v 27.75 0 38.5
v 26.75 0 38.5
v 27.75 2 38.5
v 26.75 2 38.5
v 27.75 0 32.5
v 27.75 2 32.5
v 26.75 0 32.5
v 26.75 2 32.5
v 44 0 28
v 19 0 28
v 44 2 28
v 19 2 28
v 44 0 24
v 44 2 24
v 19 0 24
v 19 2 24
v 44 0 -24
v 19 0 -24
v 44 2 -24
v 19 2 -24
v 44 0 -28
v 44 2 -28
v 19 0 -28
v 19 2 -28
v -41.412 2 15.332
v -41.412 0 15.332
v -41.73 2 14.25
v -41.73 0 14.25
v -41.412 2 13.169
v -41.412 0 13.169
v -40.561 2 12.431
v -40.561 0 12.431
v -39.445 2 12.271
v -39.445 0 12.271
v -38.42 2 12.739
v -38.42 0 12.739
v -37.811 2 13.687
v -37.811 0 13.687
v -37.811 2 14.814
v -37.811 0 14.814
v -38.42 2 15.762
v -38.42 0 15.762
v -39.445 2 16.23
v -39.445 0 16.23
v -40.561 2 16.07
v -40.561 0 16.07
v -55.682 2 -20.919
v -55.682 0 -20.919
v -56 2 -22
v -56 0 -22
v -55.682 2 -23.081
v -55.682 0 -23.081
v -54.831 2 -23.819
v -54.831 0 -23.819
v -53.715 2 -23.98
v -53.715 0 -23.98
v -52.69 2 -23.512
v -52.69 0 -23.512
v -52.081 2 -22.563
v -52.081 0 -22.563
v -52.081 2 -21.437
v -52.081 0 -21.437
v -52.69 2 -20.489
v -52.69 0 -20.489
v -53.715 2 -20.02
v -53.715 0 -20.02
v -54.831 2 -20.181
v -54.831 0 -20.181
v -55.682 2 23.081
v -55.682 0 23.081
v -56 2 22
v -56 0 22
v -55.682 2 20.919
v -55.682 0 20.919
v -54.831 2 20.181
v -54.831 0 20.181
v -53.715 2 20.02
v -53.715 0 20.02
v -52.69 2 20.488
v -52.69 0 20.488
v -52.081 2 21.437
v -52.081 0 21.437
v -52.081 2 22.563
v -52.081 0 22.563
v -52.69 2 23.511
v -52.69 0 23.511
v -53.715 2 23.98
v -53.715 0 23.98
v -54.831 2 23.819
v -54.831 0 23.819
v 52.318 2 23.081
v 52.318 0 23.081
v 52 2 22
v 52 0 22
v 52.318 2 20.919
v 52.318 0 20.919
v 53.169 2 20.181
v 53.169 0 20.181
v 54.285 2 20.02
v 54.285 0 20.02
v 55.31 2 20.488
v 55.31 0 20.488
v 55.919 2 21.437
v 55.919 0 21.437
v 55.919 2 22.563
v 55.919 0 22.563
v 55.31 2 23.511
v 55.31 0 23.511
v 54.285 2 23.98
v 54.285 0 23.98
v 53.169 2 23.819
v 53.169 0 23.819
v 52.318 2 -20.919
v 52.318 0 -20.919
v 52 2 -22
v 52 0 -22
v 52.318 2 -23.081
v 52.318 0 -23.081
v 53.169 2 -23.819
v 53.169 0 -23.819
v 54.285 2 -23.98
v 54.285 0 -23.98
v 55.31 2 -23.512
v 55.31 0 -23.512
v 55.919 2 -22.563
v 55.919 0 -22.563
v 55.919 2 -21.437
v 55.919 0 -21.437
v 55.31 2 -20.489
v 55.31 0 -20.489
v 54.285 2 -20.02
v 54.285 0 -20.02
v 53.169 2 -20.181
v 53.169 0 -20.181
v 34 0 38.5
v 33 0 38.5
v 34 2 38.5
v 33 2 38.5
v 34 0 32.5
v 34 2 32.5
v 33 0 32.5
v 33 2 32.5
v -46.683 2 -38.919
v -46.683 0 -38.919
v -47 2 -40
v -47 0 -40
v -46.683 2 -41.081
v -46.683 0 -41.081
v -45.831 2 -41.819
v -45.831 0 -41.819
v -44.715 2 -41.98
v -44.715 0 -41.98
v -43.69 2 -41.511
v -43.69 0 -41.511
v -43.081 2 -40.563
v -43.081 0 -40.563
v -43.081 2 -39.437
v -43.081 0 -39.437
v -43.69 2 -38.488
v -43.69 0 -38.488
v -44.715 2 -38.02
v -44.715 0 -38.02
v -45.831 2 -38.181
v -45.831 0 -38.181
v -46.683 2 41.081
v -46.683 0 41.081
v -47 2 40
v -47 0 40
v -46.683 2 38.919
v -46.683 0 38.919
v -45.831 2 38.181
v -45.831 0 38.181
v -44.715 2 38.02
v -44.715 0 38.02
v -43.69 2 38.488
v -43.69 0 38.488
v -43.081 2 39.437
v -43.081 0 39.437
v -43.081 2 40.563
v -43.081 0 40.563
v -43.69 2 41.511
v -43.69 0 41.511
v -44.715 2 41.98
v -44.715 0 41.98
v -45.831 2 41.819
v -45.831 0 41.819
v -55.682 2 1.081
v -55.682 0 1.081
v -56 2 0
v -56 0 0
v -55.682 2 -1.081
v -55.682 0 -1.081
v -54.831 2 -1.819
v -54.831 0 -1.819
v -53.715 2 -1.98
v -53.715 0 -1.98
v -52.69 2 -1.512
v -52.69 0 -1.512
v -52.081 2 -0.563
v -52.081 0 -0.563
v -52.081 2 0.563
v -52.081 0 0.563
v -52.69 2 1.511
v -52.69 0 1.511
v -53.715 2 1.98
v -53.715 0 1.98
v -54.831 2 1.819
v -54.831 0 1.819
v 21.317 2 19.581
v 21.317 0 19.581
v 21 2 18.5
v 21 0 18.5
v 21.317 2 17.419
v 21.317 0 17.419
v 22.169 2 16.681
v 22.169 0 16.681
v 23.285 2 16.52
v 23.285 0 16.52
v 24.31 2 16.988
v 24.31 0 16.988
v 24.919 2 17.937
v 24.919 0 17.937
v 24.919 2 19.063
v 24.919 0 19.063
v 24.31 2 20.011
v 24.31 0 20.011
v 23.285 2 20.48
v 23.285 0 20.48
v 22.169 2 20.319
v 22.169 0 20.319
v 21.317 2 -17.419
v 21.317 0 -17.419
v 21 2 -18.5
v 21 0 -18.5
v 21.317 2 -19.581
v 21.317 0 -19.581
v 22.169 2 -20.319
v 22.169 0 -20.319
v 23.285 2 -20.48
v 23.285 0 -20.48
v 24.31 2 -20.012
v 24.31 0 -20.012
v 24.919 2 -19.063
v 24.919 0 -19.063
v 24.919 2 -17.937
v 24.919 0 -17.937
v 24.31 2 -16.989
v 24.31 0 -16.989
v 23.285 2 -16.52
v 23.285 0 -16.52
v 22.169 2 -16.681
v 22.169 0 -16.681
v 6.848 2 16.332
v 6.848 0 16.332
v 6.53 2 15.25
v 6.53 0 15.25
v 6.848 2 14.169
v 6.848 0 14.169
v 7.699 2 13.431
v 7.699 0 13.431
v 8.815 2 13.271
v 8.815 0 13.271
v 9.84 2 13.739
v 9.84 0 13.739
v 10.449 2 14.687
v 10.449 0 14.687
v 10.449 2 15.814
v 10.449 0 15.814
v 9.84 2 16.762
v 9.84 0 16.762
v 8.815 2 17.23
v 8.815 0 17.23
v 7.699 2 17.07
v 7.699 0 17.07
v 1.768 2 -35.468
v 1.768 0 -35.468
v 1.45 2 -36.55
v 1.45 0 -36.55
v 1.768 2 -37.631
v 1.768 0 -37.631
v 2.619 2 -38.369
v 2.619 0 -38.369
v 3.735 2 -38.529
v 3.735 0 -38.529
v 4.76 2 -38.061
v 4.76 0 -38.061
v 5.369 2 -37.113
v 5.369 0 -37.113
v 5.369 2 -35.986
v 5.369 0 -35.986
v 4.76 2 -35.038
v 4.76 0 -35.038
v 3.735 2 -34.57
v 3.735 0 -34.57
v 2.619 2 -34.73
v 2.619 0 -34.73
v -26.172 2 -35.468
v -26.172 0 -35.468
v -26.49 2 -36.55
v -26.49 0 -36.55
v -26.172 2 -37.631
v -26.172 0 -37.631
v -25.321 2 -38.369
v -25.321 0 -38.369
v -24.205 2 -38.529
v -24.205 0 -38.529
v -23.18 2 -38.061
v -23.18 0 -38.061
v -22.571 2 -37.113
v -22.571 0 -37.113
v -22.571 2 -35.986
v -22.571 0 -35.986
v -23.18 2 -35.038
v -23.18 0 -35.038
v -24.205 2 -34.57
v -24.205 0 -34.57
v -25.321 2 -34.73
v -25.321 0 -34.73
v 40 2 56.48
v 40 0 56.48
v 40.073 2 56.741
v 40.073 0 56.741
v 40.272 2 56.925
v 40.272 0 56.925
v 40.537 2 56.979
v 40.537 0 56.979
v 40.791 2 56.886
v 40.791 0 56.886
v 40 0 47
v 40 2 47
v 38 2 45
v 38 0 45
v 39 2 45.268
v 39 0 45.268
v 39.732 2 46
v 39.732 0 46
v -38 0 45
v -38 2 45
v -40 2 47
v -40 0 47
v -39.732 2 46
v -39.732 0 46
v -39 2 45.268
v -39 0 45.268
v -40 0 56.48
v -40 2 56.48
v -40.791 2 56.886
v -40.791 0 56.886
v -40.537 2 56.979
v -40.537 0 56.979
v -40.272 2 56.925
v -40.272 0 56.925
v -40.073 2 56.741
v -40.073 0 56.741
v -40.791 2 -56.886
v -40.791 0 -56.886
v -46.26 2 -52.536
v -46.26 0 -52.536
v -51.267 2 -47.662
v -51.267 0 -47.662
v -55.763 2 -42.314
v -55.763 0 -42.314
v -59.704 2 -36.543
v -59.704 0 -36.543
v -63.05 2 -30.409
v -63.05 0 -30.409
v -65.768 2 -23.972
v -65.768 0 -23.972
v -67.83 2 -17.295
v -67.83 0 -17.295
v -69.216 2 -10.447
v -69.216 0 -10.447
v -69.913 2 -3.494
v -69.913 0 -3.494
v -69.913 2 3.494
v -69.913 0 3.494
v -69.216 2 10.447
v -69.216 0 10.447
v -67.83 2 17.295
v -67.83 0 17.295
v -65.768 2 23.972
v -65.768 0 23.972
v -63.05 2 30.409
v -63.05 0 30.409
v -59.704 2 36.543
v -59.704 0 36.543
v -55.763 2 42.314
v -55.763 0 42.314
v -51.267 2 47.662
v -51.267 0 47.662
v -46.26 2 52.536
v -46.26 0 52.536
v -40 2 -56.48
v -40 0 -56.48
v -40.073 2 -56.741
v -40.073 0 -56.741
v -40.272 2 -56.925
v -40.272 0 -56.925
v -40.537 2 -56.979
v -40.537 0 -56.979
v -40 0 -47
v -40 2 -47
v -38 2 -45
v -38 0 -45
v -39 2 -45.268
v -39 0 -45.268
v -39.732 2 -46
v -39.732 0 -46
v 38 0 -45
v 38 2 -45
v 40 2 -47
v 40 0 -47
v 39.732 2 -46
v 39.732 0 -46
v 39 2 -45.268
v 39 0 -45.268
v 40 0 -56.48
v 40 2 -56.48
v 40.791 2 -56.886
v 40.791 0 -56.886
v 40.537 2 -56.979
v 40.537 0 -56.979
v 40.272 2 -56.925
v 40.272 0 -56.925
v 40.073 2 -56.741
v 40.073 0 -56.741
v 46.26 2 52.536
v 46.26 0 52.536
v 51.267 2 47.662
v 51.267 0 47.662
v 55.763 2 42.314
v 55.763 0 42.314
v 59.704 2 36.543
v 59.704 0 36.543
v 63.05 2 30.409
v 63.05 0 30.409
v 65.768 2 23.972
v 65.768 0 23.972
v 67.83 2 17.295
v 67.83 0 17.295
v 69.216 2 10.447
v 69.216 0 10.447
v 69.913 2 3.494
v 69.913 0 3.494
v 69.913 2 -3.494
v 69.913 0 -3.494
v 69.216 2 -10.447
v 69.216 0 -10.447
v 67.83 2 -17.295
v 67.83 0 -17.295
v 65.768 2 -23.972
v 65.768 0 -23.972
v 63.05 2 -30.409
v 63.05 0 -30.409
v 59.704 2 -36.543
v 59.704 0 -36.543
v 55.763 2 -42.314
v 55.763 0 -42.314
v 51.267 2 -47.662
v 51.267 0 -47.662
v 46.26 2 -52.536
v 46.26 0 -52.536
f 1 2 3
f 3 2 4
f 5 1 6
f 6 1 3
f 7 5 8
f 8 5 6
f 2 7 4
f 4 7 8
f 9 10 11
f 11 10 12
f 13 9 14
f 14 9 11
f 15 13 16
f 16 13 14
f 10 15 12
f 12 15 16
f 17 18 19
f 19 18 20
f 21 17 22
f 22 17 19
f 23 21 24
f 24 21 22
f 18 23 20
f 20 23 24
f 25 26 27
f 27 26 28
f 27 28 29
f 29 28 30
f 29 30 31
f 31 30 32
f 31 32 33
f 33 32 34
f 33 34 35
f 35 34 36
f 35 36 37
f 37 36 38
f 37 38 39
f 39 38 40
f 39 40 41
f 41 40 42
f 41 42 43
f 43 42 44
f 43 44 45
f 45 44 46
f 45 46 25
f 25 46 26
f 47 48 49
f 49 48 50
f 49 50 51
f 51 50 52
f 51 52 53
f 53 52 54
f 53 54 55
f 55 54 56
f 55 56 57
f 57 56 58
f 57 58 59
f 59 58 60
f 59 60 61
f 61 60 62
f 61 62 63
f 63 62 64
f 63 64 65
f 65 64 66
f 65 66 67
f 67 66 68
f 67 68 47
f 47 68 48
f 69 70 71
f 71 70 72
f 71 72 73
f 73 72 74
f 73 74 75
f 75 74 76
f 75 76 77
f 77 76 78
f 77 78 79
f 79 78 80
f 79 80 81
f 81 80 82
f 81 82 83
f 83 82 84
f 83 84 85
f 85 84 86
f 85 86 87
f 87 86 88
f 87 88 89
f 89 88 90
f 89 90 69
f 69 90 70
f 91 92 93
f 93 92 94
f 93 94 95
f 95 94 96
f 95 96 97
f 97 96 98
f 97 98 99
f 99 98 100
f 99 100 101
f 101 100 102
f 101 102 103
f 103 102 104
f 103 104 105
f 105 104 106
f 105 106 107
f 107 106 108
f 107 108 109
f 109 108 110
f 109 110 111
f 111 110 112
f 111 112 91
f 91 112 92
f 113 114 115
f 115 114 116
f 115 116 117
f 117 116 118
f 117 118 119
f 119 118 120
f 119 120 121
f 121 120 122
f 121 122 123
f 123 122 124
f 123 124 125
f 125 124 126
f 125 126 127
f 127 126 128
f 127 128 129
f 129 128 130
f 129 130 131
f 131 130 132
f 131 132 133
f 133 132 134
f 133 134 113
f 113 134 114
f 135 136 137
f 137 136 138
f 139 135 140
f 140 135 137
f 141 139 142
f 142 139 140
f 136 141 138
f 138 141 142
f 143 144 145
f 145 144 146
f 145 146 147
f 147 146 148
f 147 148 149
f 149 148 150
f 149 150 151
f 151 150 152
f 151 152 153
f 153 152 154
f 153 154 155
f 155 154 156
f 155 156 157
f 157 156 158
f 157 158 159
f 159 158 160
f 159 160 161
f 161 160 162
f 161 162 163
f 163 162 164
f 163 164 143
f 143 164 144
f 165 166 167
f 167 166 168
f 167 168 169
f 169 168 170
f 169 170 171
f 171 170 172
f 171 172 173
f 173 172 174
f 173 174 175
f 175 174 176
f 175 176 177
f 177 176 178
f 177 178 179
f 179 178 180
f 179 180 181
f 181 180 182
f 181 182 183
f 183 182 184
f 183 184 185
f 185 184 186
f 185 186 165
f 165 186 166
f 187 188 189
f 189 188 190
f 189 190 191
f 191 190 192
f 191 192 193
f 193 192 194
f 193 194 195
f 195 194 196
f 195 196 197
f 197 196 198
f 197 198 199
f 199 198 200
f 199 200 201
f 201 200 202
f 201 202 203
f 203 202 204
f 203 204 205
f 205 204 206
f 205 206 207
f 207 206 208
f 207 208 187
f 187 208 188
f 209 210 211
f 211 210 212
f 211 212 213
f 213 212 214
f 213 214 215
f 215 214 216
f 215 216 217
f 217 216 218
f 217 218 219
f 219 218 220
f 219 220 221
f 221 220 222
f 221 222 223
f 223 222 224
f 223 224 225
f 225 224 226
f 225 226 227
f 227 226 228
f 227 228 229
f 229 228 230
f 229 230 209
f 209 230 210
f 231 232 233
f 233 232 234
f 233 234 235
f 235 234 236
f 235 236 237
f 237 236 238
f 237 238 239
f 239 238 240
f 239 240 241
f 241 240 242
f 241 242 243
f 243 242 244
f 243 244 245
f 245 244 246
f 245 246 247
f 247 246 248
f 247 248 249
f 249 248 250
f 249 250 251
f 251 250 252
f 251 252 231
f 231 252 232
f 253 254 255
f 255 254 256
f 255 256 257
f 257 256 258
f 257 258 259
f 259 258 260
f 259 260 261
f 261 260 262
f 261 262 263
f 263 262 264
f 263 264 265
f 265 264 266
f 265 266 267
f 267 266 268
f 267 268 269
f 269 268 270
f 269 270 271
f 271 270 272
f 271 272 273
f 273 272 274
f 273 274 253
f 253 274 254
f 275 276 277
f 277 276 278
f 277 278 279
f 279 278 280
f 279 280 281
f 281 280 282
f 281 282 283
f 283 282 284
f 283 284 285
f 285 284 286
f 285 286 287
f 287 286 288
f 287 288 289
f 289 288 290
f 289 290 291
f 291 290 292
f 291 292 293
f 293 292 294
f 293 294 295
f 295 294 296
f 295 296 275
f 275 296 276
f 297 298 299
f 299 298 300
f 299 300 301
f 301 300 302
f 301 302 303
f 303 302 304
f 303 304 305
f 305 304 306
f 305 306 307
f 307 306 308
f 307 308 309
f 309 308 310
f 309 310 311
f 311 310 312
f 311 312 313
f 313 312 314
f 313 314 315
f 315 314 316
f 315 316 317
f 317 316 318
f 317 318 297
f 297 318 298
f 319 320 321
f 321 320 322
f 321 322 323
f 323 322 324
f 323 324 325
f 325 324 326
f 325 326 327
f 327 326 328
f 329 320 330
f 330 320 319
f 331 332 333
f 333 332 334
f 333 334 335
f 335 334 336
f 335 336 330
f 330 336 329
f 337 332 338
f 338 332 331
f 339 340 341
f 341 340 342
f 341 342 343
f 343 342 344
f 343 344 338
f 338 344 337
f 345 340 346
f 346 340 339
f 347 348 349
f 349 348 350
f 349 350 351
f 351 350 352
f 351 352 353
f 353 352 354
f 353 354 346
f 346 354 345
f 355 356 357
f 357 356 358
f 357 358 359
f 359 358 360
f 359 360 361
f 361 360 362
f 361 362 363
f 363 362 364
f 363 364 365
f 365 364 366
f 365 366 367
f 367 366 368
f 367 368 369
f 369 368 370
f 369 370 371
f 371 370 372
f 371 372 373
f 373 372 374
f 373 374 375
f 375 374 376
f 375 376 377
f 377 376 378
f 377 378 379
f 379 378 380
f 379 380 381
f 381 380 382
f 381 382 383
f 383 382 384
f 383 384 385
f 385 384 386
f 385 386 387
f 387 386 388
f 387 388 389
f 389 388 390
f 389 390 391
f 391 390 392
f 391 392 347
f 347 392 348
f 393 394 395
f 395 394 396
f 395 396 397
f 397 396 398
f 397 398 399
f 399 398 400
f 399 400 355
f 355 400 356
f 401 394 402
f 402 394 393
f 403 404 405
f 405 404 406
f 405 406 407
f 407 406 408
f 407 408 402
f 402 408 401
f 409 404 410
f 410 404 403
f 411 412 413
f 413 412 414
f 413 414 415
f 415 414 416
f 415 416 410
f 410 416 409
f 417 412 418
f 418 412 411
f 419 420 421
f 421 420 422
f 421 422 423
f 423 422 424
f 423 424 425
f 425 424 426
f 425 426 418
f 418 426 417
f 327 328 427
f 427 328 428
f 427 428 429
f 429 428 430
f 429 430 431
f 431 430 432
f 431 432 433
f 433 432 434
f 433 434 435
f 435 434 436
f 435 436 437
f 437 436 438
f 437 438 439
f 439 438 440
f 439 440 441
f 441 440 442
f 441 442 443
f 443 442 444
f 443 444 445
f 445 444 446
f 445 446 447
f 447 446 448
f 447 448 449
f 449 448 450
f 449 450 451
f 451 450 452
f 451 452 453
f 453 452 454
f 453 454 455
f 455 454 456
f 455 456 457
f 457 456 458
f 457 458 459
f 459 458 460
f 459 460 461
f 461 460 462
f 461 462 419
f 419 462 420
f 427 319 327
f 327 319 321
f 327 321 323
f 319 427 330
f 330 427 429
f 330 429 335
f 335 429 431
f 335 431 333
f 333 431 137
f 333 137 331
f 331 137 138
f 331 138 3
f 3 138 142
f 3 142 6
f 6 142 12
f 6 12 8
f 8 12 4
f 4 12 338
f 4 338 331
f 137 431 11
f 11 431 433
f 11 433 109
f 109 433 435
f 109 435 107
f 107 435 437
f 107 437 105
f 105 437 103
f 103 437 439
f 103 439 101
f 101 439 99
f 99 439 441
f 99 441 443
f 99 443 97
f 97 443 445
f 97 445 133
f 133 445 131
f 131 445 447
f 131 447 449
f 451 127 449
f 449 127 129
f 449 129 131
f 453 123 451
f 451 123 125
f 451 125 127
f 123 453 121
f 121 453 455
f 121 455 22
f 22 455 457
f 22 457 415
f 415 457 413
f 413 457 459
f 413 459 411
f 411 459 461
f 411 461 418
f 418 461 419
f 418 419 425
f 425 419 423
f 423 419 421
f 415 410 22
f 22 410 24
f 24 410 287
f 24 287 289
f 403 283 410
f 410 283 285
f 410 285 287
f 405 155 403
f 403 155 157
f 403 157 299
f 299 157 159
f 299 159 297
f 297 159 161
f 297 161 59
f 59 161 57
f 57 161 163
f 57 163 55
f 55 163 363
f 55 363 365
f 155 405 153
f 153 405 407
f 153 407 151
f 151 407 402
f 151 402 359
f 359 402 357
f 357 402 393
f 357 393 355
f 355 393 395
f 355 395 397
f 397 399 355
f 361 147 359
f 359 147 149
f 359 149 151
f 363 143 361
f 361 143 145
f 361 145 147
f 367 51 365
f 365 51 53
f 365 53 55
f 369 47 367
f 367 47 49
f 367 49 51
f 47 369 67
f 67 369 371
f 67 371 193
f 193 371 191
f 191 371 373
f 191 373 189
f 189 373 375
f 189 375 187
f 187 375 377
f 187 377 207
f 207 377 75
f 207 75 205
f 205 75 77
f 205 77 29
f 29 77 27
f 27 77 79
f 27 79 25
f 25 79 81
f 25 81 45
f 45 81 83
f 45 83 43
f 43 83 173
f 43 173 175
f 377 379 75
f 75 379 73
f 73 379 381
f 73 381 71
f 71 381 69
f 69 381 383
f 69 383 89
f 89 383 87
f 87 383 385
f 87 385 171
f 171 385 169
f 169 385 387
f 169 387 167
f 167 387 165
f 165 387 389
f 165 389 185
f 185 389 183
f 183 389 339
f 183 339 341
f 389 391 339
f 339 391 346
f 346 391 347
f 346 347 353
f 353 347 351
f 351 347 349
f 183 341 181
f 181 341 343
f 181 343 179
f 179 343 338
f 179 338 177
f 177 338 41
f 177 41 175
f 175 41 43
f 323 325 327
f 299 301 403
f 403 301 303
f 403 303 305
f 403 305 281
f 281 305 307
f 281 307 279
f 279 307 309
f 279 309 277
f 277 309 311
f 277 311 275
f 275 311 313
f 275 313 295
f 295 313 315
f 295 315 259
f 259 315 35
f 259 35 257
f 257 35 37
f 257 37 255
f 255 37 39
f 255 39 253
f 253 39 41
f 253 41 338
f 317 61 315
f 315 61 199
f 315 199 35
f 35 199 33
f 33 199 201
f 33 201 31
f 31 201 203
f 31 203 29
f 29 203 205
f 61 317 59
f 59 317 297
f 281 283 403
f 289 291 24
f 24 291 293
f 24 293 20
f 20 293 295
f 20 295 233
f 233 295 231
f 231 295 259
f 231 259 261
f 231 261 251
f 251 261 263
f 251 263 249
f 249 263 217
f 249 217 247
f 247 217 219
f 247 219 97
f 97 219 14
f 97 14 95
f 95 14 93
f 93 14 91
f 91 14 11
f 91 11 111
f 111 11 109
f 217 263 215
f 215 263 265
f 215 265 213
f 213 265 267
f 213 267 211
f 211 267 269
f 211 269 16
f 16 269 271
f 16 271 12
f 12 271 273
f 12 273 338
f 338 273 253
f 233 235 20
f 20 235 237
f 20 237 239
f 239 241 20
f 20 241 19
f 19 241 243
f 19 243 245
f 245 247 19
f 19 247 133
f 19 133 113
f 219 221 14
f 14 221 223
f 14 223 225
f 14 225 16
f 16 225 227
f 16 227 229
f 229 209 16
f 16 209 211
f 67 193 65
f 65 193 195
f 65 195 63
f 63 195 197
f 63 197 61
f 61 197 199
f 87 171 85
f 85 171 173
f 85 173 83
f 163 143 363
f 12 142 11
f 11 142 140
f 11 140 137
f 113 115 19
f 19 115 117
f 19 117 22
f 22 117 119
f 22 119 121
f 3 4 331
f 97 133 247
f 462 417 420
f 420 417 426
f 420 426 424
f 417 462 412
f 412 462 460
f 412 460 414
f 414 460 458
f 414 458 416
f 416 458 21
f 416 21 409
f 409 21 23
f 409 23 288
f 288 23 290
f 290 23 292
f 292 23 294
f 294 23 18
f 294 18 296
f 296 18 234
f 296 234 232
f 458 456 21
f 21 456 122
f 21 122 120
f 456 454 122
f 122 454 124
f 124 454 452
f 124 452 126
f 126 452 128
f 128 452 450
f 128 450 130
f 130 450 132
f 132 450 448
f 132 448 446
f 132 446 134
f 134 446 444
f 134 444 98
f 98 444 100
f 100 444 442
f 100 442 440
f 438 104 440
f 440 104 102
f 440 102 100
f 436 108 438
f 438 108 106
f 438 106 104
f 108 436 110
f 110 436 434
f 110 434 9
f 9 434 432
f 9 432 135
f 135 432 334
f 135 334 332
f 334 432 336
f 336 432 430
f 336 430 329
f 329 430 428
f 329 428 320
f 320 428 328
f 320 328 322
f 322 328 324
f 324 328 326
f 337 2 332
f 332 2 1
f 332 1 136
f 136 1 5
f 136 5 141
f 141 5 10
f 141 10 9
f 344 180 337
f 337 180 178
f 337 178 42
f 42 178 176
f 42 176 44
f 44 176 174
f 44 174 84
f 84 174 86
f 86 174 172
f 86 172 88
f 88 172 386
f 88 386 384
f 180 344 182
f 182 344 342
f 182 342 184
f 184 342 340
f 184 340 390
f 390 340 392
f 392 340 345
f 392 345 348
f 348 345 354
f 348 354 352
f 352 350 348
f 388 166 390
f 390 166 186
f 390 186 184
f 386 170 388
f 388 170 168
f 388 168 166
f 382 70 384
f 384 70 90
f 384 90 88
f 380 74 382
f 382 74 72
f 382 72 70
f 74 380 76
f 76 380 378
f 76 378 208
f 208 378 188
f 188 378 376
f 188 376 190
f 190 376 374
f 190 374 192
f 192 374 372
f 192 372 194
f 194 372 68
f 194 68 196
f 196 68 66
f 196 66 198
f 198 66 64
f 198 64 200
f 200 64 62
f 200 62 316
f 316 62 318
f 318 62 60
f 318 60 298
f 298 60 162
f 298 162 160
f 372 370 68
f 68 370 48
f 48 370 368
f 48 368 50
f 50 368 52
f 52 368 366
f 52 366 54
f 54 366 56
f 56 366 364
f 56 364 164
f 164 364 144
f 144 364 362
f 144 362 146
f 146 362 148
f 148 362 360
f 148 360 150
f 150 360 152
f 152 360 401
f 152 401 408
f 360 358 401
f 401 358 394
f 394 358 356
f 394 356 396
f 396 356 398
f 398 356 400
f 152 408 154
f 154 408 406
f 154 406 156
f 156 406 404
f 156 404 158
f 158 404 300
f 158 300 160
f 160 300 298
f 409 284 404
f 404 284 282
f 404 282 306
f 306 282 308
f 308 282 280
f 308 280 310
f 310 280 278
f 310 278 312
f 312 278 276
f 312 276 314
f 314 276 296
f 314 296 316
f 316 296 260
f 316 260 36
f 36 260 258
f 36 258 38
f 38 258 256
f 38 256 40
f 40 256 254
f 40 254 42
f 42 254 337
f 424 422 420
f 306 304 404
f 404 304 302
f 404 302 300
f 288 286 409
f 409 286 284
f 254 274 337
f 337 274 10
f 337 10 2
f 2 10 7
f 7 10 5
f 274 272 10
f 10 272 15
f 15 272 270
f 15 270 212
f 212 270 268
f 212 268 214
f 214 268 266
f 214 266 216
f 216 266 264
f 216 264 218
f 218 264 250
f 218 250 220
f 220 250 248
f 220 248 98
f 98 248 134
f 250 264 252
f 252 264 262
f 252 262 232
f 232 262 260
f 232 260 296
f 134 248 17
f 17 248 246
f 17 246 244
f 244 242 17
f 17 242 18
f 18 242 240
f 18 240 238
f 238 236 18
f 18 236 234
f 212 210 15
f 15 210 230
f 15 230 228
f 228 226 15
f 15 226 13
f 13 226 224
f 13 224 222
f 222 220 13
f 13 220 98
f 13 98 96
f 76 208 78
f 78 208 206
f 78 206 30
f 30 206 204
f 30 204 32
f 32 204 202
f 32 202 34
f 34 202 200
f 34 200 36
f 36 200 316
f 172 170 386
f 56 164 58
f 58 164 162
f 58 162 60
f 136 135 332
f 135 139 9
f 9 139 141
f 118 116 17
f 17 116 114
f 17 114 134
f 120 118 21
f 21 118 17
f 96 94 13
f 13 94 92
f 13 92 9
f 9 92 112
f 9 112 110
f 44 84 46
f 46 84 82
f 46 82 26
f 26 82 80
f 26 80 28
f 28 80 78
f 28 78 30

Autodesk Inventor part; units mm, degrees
ref_plane "YZ Plane" through (0, 0, 0) normal (1, 0, 0) x (0, 1, 0)
ref_plane "XZ Plane" through (0, 0, 0) normal (0, 1, 0) x (-1, 0, 0)
ref_plane "XY Plane" through (0, 0, 0) normal (0, 0, 1) x (1, 0, 0)
sketch "Esboço1" plane through (0, 0, 0) normal (0, 1, 0) x (-1, 0, 0)
  arc A0 (-40.7914, 56.8864) -> (-40.7914, -56.8864) centre (0, 0) ccw
  arc A1 (40.7914, -56.8864) -> (40.7914, 56.8864) centre (0, 0) ccw
  line L0 (-11.73, 29.4903) -> (42.27, 29.4903) construction
  line L1 (42.27, 29.4903) -> (42.27, -38.5097) construction
  line L2 (42.27, -38.5097) -> (-11.73, -38.5097) construction
  line L3 (-11.73, -38.5097) -> (-11.73, 29.4903) construction
  line L4 (-19, 28) -> (-44, 28)
  line L5 (-44, 28) -> (-44, 24)
  line L6 (-44, 24) -> (-19, 24)
  line L7 (-19, 24) -> (-19, 28)
  line L8 (-19, -24) -> (-44, -24)
  line L9 (-44, -24) -> (-44, -28)
  line L10 (-44, -28) -> (-19, -28)
  line L11 (-19, -28) -> (-19, -24)
  circle A2 centre (39.73, 14.2503) radius 2
  circle A3 centre (24.49, -36.5497) radius 2
  circle A4 centre (-3.45, -36.5497) radius 2
  circle A5 centre (54, -22) radius 2
  circle A6 centre (54, 22) radius 2
  circle A7 centre (-54, 22) radius 2
  circle A8 centre (-54, -22) radius 2
  line L12 (0, 45) -> (-38, 45)
  line L13 (-40, 47) -> (-40, 56.4801)
  line L14 (0, 45) -> (38, 45)
  line L15 (40, 47) -> (40, 56.4801)
  line L16 (0, -45) -> (-38, -45)
  line L17 (-40, -47) -> (-40, -56.4801)
  line L18 (0, -45) -> (38, -45)
  line L19 (40, -47) -> (40, -56.4801)
  arc A9 (40.7914, -56.8864) -> (40.7914, 56.8864) centre (0, 0) ccw
  arc A10 (-40.7914, 56.8864) -> (-40.7914, -56.8864) centre (0, 0) ccw
  circle A11 centre (-8.53, 15.2503) radius 2
  circle A12 centre (-23, -18.5) radius 2
  circle A13 centre (-23, 18.5) radius 2
  arc A14 (38, 45) -> (40, 47) centre (38, 47) ccw
  arc A15 (-40, 47) -> (-38, 45) centre (-38, 47) ccw
  arc A16 (-38, -45) -> (-40, -47) centre (-38, -47) ccw
  arc A17 (40, -47) -> (38, -45) centre (38, -47) ccw
  arc A18 (40, -56.4801) -> (40.7914, -56.8864) centre (40.5, -56.4801) ccw
  arc A19 (40.7914, 56.8864) -> (40, 56.4801) centre (40.5, 56.4801) ccw
  arc A20 (-40, 56.4801) -> (-40.7914, 56.8864) centre (-40.5, 56.4801) ccw
  arc A21 (-40.7914, -56.8864) -> (-40, -56.4801) centre (-40.5, -56.4801) ccw
  line L20 (-27.75, 32.5) -> (-27.75, 38.5)
  line L21 (-27.75, 32.5) -> (-27.25, 32.5)
  line L22 (-27, 38.5) -> (-27.75, 38.5)
  line L23 (-33, 38.5) -> (-34, 38.5)
  line L24 (-34, 38.5) -> (-34, 32.5)
  line L25 (-34, 32.5) -> (-33, 32.5)
  line L26 (-33, 32.5) -> (-33, 38.5)
  line L27 (-27.75, 38.5) -> (-26.75, 38.5)
  line L28 (-26.75, 38.5) -> (-26.75, 32.5)
  line L29 (-26.75, 32.5) -> (-27.75, 32.5)
  line L30 (-27.75, 32.5) -> (-27.75, 38.5)
  circle A22 centre (45, -40) radius 2
  circle A23 centre (45, 40) radius 2
  circle A24 centre (54, 0) radius 2
  point P0 (-40, 45)
  point P1 (40, 45)
  point P2 (-40, -45)
  point P3 (40, -45)
  dimension "d144" = 0.5
extrude "Extrusão3" add sketch "Esboço1" along normal blind 2
properties part number "base 1" material "Plástico PC/ABS"
